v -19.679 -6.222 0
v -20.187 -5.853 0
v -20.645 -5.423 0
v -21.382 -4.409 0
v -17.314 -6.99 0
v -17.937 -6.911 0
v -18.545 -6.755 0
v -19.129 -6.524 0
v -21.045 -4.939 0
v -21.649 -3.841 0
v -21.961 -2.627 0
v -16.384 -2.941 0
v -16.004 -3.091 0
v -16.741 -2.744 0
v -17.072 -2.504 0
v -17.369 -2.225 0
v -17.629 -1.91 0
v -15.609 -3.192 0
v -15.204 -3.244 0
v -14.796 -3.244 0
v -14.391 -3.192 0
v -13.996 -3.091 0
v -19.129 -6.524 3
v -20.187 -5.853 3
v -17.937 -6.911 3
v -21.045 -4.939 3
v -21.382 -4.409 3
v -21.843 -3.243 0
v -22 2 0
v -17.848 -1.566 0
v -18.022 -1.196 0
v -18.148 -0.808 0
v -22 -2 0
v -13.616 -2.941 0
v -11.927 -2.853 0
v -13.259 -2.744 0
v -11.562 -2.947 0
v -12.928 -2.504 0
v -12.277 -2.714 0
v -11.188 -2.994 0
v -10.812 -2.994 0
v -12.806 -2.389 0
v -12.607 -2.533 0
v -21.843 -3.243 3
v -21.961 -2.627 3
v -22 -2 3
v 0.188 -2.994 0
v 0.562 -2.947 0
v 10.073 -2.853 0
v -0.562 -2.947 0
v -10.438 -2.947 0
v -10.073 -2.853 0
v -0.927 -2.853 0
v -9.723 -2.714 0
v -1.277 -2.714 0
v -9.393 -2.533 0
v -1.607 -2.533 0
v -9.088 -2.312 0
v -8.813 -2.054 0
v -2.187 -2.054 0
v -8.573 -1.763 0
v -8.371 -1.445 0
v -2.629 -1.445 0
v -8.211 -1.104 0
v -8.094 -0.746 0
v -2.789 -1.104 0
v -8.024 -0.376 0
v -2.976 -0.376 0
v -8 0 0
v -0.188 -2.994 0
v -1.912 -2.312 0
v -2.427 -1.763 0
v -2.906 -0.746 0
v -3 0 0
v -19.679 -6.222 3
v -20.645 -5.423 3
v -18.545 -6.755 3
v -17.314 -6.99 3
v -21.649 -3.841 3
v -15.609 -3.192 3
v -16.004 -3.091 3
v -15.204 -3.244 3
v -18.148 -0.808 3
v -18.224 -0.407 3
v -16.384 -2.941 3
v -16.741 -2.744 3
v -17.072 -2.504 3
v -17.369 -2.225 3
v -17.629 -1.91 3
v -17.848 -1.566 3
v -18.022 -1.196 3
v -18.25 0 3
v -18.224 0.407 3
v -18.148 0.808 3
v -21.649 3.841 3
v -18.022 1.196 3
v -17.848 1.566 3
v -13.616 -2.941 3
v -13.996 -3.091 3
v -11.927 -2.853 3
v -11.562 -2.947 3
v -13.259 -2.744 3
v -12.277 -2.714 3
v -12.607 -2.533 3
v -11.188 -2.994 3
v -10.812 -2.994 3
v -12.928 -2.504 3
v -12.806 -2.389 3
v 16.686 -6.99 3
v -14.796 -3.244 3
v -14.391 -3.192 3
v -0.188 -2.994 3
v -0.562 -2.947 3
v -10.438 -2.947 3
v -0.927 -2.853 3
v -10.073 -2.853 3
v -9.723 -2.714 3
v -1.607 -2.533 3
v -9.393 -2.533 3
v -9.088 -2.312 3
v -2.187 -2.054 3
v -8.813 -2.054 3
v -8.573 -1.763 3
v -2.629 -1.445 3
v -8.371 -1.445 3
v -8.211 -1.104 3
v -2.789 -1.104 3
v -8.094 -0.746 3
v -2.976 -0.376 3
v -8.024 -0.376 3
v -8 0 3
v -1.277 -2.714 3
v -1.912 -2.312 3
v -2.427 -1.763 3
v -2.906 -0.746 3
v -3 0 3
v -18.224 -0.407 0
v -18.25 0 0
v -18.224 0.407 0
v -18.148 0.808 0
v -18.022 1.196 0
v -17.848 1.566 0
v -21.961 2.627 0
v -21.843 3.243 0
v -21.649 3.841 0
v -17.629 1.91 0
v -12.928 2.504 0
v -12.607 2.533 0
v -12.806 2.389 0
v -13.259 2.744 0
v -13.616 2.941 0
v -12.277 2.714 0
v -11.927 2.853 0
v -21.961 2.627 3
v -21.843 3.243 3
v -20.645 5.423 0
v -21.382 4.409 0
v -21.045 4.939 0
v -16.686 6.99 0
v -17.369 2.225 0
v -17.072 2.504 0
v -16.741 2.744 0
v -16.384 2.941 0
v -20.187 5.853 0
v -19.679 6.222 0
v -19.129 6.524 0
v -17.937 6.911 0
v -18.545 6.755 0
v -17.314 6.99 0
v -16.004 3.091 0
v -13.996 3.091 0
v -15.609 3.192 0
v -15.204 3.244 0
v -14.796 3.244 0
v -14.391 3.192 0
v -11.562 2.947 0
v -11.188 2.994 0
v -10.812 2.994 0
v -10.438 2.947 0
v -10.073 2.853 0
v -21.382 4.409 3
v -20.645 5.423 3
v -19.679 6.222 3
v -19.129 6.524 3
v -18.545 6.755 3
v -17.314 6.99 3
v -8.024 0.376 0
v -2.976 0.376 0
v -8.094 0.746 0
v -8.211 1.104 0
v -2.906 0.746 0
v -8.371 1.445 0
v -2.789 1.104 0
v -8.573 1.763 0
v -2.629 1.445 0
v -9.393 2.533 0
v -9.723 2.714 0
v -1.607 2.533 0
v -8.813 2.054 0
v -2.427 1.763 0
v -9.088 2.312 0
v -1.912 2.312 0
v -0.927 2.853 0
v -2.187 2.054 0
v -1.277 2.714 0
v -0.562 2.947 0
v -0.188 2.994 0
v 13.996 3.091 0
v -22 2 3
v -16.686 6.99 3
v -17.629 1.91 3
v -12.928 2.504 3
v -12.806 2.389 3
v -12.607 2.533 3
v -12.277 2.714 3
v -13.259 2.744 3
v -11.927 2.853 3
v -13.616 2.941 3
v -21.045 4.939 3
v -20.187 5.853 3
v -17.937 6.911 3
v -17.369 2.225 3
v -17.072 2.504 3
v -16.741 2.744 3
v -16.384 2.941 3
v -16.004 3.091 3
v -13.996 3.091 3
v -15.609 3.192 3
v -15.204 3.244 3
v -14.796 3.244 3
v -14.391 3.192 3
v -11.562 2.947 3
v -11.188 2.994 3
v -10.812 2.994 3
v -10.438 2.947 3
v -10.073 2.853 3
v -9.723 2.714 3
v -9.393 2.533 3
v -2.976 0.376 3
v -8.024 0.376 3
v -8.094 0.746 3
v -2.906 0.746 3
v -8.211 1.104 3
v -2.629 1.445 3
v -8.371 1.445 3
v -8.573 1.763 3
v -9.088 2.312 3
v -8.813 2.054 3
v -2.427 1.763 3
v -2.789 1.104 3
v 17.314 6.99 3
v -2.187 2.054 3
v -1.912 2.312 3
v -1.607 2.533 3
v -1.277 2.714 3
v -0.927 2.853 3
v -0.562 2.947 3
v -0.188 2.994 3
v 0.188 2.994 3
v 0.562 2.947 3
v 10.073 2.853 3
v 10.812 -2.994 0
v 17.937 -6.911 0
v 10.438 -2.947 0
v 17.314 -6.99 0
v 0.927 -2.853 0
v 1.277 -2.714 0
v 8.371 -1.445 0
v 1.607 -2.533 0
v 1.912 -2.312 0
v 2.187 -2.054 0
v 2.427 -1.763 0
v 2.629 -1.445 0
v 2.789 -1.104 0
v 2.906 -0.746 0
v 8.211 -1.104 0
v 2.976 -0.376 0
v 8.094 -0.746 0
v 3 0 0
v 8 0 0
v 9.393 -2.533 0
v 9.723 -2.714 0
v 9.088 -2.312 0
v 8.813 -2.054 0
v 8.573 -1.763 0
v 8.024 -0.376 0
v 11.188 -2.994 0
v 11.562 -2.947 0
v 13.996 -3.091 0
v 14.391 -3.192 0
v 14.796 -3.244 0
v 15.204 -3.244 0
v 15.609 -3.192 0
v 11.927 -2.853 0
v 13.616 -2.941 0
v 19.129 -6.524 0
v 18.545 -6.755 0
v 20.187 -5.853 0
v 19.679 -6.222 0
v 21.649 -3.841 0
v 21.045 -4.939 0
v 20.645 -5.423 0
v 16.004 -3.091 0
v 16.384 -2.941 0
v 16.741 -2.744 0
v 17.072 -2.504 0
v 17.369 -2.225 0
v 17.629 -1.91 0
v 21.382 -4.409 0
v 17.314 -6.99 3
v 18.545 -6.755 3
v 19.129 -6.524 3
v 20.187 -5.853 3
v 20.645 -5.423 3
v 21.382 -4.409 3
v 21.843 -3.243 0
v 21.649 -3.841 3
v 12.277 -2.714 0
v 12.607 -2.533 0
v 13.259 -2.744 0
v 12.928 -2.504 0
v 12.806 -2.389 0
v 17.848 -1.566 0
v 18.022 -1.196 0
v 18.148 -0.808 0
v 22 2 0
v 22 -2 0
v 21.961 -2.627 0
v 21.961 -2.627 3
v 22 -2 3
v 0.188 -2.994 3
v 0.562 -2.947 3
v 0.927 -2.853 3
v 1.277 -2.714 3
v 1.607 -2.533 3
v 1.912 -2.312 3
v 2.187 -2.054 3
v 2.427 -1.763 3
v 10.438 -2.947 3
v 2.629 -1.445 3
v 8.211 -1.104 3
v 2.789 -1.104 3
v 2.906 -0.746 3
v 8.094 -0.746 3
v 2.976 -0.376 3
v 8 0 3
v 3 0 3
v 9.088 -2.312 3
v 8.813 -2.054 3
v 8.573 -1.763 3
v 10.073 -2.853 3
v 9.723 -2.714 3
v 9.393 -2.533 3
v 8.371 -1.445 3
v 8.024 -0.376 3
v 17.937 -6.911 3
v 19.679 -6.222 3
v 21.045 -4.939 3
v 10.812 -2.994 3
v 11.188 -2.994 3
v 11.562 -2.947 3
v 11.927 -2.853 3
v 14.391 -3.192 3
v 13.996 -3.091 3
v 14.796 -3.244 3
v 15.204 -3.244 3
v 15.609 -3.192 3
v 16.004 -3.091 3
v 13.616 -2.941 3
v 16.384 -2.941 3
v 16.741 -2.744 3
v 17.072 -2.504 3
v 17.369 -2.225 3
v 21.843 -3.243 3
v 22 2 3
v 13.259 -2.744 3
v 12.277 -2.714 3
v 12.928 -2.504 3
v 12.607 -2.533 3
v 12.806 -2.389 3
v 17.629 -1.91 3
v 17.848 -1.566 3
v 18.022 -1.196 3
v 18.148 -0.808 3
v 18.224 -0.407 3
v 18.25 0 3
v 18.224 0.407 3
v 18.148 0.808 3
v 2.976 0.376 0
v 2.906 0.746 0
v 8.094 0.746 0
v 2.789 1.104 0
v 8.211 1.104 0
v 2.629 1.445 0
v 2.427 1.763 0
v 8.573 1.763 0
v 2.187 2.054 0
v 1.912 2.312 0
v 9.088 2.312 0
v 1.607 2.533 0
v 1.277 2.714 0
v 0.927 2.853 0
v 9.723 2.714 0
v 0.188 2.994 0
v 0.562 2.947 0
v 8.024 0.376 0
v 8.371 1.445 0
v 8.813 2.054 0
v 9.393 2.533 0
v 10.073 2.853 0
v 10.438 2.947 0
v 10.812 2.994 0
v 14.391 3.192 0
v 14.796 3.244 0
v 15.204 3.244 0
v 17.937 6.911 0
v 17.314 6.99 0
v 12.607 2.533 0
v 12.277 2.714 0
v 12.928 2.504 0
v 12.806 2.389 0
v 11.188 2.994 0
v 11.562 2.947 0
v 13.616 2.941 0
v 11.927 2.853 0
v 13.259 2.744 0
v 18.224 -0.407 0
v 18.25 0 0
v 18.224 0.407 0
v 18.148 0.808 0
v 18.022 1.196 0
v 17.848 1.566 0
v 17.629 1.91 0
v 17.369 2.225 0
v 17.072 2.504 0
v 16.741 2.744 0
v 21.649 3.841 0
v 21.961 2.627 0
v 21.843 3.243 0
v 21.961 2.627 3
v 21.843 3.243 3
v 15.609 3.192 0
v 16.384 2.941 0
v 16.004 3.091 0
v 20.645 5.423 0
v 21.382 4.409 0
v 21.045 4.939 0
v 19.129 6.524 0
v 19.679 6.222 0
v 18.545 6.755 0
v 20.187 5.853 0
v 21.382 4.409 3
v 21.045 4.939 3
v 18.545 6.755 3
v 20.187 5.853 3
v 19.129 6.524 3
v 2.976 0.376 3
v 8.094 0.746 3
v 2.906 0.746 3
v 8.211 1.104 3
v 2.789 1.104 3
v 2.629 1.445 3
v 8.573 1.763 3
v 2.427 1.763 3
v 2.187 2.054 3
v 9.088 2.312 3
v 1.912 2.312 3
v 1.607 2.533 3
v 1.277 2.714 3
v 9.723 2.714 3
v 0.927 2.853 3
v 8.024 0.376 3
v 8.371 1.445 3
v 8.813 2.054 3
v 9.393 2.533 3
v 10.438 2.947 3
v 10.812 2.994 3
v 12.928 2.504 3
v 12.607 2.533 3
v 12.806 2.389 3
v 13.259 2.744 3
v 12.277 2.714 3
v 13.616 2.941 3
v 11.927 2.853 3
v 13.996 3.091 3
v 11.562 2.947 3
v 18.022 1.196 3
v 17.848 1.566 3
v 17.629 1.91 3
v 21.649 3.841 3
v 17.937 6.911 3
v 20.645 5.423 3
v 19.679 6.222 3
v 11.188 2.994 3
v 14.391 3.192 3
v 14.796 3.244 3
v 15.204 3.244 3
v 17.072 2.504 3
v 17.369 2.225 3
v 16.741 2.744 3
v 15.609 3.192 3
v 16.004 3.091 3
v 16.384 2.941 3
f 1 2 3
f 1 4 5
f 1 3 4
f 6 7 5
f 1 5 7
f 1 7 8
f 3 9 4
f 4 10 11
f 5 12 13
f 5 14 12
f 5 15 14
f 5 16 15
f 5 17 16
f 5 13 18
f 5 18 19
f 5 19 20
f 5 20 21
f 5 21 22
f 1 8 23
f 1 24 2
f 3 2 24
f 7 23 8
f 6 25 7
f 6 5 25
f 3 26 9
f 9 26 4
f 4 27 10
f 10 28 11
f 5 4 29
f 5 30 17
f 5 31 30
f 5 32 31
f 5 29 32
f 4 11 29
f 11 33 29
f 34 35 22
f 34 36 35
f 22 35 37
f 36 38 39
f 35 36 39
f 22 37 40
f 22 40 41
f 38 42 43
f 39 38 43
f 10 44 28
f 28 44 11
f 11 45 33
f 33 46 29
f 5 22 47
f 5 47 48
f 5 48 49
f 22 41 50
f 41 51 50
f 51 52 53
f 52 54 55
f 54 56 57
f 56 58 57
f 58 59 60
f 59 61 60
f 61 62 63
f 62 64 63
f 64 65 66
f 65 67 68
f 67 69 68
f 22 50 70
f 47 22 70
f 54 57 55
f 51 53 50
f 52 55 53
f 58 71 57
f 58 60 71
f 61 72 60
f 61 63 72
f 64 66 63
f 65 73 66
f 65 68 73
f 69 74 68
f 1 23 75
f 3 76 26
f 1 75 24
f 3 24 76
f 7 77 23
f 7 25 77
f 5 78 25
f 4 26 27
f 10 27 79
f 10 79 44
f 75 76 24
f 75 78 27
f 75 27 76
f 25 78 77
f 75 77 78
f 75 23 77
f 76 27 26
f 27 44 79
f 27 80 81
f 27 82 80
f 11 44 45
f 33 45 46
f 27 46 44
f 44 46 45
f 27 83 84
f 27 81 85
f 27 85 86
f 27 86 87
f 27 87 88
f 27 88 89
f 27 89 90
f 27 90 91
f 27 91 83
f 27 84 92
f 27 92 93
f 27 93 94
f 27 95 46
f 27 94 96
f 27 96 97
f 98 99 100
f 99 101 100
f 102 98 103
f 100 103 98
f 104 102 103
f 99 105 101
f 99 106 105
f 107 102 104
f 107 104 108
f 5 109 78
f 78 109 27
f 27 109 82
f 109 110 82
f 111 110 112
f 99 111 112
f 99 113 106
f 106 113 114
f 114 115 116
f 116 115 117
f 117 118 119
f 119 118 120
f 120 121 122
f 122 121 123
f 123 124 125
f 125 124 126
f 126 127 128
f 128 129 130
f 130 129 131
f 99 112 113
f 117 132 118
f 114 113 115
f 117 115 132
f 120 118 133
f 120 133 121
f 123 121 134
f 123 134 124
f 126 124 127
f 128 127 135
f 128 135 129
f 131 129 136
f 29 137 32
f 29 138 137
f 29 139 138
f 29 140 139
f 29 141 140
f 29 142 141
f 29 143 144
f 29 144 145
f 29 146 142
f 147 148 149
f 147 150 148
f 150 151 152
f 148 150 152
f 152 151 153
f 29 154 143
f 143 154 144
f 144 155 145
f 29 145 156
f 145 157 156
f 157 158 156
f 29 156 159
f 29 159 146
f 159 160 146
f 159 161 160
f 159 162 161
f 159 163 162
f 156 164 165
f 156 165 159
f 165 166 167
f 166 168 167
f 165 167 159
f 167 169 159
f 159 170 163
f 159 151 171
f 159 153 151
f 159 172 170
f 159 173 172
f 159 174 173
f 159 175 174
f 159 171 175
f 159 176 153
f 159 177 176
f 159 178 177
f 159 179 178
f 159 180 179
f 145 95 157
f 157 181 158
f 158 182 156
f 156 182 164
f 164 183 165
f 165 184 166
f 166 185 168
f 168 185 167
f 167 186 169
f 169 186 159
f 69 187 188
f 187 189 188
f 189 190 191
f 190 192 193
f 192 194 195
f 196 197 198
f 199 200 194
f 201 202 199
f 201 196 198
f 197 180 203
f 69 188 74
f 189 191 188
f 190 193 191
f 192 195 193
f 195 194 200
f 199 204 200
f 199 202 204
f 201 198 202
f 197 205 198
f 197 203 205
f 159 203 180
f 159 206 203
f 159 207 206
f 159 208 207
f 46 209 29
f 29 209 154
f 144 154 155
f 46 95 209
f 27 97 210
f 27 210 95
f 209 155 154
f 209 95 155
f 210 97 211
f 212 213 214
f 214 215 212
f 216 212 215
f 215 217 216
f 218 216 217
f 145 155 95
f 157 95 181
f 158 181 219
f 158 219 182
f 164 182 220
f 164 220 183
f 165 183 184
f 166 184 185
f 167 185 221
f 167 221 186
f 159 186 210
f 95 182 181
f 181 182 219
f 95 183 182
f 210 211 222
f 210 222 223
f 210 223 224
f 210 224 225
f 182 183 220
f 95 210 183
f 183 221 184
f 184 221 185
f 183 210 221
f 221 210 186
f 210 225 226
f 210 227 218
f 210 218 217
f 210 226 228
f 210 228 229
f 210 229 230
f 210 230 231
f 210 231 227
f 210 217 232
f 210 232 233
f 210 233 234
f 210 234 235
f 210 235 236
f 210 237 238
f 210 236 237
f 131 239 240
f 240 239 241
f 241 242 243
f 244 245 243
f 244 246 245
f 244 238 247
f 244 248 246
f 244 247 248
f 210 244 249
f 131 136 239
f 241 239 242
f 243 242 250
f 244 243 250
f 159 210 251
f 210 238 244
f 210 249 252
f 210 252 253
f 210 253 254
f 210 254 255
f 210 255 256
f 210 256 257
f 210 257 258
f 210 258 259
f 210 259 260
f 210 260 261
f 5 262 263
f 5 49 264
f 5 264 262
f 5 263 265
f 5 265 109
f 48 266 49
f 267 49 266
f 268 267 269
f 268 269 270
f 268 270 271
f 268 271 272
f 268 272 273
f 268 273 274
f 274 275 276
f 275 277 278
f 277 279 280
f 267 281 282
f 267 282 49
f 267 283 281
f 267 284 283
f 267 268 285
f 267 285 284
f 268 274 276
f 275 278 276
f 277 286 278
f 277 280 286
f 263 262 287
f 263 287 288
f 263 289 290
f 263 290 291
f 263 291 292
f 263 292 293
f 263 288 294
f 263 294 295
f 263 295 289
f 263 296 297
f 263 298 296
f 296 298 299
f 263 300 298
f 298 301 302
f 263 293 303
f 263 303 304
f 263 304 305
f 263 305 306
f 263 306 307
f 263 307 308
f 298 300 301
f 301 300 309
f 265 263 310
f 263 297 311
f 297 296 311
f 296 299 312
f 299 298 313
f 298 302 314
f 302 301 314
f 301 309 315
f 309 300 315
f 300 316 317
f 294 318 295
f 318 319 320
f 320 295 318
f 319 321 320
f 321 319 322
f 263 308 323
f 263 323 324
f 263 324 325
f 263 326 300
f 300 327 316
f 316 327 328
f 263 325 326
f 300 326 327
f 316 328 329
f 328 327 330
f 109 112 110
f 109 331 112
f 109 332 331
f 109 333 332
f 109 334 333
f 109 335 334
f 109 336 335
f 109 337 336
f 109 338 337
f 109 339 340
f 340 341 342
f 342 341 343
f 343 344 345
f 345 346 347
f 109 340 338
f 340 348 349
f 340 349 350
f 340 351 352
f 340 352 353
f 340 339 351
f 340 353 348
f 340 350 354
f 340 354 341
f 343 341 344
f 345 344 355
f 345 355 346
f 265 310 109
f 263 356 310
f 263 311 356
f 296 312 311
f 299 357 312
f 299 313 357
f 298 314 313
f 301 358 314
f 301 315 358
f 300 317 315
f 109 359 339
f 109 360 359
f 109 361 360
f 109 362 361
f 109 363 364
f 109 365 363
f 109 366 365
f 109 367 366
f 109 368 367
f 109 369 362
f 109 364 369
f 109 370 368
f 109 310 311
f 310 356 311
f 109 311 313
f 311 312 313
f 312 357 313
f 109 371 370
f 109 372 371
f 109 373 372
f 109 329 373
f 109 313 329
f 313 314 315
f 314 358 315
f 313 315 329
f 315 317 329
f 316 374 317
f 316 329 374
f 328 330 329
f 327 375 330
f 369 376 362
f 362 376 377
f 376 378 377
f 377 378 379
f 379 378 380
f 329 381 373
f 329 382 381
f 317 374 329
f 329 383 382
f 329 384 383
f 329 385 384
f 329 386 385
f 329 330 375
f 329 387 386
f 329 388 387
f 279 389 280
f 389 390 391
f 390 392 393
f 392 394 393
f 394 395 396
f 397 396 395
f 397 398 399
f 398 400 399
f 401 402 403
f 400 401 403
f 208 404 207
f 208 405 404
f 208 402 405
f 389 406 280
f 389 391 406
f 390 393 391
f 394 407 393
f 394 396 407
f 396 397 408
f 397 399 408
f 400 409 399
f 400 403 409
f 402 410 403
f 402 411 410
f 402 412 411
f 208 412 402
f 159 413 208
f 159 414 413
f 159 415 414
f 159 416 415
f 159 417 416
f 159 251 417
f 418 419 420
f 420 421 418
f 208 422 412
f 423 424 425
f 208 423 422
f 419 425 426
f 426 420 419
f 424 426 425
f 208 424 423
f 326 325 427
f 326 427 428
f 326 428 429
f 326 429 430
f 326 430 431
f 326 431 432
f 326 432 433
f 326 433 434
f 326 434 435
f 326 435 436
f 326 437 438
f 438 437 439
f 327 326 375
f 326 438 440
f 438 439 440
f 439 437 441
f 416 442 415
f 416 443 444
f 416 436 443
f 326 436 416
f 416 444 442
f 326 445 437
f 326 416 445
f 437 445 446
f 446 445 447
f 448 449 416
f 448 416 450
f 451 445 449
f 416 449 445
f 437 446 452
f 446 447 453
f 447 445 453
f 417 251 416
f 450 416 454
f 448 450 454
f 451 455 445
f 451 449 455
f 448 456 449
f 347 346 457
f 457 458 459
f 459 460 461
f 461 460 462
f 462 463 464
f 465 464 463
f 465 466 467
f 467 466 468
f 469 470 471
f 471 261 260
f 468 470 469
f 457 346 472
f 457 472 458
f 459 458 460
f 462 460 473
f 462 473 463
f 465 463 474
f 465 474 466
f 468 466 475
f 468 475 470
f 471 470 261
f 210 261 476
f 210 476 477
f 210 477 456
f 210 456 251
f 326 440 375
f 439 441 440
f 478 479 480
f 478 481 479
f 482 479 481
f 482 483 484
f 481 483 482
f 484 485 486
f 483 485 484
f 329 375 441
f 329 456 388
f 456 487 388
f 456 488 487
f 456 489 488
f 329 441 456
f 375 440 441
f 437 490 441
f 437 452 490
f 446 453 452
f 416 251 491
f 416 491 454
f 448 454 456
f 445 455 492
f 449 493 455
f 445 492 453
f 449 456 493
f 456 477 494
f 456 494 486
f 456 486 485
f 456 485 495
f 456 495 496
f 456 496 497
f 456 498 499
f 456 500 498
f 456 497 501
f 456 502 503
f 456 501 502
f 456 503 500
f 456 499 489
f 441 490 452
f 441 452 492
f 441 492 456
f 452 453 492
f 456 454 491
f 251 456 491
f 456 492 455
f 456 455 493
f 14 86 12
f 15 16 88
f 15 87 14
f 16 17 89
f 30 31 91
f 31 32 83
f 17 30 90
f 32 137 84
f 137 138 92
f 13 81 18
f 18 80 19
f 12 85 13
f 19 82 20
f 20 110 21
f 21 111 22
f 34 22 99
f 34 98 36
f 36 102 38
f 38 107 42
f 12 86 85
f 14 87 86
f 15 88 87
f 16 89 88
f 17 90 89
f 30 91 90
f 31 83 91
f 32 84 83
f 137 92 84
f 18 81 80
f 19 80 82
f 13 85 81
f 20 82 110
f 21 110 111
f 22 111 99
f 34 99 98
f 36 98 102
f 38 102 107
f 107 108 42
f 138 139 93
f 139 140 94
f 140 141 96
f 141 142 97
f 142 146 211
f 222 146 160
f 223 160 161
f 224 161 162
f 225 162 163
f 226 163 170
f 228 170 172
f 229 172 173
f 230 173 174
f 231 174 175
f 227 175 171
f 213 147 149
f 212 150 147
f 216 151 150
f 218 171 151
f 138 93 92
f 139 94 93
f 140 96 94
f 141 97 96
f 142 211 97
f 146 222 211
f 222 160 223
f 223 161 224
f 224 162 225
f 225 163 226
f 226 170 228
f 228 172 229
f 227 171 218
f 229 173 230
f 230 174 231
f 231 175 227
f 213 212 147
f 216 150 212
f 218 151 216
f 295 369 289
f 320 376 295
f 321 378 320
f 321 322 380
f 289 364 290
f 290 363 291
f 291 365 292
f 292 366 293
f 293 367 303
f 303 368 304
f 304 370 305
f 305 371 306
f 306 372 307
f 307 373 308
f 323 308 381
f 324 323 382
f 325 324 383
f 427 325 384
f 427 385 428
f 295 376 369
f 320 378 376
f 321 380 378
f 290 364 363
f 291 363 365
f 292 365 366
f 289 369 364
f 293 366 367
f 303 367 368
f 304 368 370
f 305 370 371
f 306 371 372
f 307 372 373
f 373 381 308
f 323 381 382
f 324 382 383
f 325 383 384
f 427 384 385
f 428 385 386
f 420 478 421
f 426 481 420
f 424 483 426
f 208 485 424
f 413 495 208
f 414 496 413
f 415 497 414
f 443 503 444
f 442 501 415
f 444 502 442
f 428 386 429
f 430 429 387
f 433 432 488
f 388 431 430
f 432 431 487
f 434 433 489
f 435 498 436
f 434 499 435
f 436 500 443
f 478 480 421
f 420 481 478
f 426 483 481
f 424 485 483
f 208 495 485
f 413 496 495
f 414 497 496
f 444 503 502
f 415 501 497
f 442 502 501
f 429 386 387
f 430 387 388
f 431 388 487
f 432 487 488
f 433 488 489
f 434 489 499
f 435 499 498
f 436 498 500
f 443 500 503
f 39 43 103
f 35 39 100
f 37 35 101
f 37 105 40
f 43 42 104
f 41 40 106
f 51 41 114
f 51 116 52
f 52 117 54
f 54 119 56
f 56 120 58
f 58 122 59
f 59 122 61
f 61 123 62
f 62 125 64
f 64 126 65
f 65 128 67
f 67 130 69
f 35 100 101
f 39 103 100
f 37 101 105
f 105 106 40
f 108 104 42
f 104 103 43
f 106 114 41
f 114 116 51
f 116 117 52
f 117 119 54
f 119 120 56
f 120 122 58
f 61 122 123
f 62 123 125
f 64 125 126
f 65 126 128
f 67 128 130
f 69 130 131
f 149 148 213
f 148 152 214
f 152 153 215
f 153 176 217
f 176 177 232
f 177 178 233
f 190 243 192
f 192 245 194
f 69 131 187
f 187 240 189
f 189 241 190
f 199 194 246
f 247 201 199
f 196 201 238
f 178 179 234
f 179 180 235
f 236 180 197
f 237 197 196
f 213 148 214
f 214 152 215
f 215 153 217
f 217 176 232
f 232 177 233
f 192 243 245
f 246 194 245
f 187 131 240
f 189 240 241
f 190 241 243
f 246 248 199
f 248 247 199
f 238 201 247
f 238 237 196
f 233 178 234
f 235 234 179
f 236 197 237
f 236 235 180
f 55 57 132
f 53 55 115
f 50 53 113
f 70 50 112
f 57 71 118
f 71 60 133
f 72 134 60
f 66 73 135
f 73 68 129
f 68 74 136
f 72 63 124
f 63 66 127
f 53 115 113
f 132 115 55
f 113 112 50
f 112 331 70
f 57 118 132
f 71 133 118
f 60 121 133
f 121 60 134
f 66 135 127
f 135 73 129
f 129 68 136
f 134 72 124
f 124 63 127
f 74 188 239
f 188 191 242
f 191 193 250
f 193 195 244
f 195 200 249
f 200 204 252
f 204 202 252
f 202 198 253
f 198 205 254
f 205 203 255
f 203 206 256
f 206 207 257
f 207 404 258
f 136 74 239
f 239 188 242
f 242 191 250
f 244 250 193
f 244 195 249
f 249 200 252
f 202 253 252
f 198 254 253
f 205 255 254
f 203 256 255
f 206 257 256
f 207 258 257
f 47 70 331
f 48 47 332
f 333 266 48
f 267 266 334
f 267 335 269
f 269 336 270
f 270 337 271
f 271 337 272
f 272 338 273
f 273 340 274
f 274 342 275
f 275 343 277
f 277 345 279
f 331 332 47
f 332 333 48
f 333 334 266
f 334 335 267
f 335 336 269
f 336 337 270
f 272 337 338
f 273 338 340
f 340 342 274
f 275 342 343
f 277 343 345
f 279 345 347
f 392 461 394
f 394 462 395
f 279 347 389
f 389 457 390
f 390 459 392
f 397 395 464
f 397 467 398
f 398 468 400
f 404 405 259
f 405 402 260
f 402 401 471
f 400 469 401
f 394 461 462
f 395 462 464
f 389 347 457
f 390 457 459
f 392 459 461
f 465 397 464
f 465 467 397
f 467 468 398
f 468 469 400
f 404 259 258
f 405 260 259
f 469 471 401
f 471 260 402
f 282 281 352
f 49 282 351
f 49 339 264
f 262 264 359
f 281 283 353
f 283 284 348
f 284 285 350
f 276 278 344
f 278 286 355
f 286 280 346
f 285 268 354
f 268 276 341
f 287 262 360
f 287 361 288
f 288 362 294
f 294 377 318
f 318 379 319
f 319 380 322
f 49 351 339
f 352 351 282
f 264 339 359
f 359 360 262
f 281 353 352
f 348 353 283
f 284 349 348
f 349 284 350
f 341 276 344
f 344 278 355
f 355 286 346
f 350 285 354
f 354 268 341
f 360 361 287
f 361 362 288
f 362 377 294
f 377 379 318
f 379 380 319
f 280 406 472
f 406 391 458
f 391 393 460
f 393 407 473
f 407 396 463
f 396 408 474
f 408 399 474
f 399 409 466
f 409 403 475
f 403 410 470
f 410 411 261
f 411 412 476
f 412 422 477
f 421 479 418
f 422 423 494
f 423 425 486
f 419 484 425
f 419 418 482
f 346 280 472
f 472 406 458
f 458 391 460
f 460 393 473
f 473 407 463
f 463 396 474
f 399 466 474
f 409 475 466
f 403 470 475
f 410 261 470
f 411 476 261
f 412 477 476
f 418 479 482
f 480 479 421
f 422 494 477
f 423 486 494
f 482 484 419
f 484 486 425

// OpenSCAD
$fn = 50;

difference() {
	union() {
		hull() {
			translate(v = [-17.0, 2.0, 0]) {
				cylinder(h = 3, r = 5);
			}
			translate(v = [17.0, 2.0, 0]) {
				cylinder(h = 3, r = 5);
			}
			translate(v = [-17.0, -2.0, 0]) {
				cylinder(h = 3, r = 5);
			}
			translate(v = [17.0, -2.0, 0]) {
				cylinder(h = 3, r = 5);
			}
		}
	}
	union() {
		translate(v = [-15.0, 0.0, -100.0]) {
			cylinder(h = 200, r = 3.25);
		}
		translate(v = [15.0, 0.0, -100.0]) {
			cylinder(h = 200, r = 3.25);
		}
		translate(v = [-15.0, 0.0, -100.0]) {
			cylinder(h = 200, r = 1.8);
		}
		translate(v = [15.0, 0.0, -100.0]) {
			cylinder(h = 200, r = 1.8);
		}
		translate(v = [-11.0, 0, 0.0]) {
			cylinder(h = 3, r = 3.0);
		}
		cylinder(h = 3, r = 3.0);
		translate(v = [11.0, 0, 0.0]) {
			cylinder(h = 3, r = 3.0);
		}
	}
}
